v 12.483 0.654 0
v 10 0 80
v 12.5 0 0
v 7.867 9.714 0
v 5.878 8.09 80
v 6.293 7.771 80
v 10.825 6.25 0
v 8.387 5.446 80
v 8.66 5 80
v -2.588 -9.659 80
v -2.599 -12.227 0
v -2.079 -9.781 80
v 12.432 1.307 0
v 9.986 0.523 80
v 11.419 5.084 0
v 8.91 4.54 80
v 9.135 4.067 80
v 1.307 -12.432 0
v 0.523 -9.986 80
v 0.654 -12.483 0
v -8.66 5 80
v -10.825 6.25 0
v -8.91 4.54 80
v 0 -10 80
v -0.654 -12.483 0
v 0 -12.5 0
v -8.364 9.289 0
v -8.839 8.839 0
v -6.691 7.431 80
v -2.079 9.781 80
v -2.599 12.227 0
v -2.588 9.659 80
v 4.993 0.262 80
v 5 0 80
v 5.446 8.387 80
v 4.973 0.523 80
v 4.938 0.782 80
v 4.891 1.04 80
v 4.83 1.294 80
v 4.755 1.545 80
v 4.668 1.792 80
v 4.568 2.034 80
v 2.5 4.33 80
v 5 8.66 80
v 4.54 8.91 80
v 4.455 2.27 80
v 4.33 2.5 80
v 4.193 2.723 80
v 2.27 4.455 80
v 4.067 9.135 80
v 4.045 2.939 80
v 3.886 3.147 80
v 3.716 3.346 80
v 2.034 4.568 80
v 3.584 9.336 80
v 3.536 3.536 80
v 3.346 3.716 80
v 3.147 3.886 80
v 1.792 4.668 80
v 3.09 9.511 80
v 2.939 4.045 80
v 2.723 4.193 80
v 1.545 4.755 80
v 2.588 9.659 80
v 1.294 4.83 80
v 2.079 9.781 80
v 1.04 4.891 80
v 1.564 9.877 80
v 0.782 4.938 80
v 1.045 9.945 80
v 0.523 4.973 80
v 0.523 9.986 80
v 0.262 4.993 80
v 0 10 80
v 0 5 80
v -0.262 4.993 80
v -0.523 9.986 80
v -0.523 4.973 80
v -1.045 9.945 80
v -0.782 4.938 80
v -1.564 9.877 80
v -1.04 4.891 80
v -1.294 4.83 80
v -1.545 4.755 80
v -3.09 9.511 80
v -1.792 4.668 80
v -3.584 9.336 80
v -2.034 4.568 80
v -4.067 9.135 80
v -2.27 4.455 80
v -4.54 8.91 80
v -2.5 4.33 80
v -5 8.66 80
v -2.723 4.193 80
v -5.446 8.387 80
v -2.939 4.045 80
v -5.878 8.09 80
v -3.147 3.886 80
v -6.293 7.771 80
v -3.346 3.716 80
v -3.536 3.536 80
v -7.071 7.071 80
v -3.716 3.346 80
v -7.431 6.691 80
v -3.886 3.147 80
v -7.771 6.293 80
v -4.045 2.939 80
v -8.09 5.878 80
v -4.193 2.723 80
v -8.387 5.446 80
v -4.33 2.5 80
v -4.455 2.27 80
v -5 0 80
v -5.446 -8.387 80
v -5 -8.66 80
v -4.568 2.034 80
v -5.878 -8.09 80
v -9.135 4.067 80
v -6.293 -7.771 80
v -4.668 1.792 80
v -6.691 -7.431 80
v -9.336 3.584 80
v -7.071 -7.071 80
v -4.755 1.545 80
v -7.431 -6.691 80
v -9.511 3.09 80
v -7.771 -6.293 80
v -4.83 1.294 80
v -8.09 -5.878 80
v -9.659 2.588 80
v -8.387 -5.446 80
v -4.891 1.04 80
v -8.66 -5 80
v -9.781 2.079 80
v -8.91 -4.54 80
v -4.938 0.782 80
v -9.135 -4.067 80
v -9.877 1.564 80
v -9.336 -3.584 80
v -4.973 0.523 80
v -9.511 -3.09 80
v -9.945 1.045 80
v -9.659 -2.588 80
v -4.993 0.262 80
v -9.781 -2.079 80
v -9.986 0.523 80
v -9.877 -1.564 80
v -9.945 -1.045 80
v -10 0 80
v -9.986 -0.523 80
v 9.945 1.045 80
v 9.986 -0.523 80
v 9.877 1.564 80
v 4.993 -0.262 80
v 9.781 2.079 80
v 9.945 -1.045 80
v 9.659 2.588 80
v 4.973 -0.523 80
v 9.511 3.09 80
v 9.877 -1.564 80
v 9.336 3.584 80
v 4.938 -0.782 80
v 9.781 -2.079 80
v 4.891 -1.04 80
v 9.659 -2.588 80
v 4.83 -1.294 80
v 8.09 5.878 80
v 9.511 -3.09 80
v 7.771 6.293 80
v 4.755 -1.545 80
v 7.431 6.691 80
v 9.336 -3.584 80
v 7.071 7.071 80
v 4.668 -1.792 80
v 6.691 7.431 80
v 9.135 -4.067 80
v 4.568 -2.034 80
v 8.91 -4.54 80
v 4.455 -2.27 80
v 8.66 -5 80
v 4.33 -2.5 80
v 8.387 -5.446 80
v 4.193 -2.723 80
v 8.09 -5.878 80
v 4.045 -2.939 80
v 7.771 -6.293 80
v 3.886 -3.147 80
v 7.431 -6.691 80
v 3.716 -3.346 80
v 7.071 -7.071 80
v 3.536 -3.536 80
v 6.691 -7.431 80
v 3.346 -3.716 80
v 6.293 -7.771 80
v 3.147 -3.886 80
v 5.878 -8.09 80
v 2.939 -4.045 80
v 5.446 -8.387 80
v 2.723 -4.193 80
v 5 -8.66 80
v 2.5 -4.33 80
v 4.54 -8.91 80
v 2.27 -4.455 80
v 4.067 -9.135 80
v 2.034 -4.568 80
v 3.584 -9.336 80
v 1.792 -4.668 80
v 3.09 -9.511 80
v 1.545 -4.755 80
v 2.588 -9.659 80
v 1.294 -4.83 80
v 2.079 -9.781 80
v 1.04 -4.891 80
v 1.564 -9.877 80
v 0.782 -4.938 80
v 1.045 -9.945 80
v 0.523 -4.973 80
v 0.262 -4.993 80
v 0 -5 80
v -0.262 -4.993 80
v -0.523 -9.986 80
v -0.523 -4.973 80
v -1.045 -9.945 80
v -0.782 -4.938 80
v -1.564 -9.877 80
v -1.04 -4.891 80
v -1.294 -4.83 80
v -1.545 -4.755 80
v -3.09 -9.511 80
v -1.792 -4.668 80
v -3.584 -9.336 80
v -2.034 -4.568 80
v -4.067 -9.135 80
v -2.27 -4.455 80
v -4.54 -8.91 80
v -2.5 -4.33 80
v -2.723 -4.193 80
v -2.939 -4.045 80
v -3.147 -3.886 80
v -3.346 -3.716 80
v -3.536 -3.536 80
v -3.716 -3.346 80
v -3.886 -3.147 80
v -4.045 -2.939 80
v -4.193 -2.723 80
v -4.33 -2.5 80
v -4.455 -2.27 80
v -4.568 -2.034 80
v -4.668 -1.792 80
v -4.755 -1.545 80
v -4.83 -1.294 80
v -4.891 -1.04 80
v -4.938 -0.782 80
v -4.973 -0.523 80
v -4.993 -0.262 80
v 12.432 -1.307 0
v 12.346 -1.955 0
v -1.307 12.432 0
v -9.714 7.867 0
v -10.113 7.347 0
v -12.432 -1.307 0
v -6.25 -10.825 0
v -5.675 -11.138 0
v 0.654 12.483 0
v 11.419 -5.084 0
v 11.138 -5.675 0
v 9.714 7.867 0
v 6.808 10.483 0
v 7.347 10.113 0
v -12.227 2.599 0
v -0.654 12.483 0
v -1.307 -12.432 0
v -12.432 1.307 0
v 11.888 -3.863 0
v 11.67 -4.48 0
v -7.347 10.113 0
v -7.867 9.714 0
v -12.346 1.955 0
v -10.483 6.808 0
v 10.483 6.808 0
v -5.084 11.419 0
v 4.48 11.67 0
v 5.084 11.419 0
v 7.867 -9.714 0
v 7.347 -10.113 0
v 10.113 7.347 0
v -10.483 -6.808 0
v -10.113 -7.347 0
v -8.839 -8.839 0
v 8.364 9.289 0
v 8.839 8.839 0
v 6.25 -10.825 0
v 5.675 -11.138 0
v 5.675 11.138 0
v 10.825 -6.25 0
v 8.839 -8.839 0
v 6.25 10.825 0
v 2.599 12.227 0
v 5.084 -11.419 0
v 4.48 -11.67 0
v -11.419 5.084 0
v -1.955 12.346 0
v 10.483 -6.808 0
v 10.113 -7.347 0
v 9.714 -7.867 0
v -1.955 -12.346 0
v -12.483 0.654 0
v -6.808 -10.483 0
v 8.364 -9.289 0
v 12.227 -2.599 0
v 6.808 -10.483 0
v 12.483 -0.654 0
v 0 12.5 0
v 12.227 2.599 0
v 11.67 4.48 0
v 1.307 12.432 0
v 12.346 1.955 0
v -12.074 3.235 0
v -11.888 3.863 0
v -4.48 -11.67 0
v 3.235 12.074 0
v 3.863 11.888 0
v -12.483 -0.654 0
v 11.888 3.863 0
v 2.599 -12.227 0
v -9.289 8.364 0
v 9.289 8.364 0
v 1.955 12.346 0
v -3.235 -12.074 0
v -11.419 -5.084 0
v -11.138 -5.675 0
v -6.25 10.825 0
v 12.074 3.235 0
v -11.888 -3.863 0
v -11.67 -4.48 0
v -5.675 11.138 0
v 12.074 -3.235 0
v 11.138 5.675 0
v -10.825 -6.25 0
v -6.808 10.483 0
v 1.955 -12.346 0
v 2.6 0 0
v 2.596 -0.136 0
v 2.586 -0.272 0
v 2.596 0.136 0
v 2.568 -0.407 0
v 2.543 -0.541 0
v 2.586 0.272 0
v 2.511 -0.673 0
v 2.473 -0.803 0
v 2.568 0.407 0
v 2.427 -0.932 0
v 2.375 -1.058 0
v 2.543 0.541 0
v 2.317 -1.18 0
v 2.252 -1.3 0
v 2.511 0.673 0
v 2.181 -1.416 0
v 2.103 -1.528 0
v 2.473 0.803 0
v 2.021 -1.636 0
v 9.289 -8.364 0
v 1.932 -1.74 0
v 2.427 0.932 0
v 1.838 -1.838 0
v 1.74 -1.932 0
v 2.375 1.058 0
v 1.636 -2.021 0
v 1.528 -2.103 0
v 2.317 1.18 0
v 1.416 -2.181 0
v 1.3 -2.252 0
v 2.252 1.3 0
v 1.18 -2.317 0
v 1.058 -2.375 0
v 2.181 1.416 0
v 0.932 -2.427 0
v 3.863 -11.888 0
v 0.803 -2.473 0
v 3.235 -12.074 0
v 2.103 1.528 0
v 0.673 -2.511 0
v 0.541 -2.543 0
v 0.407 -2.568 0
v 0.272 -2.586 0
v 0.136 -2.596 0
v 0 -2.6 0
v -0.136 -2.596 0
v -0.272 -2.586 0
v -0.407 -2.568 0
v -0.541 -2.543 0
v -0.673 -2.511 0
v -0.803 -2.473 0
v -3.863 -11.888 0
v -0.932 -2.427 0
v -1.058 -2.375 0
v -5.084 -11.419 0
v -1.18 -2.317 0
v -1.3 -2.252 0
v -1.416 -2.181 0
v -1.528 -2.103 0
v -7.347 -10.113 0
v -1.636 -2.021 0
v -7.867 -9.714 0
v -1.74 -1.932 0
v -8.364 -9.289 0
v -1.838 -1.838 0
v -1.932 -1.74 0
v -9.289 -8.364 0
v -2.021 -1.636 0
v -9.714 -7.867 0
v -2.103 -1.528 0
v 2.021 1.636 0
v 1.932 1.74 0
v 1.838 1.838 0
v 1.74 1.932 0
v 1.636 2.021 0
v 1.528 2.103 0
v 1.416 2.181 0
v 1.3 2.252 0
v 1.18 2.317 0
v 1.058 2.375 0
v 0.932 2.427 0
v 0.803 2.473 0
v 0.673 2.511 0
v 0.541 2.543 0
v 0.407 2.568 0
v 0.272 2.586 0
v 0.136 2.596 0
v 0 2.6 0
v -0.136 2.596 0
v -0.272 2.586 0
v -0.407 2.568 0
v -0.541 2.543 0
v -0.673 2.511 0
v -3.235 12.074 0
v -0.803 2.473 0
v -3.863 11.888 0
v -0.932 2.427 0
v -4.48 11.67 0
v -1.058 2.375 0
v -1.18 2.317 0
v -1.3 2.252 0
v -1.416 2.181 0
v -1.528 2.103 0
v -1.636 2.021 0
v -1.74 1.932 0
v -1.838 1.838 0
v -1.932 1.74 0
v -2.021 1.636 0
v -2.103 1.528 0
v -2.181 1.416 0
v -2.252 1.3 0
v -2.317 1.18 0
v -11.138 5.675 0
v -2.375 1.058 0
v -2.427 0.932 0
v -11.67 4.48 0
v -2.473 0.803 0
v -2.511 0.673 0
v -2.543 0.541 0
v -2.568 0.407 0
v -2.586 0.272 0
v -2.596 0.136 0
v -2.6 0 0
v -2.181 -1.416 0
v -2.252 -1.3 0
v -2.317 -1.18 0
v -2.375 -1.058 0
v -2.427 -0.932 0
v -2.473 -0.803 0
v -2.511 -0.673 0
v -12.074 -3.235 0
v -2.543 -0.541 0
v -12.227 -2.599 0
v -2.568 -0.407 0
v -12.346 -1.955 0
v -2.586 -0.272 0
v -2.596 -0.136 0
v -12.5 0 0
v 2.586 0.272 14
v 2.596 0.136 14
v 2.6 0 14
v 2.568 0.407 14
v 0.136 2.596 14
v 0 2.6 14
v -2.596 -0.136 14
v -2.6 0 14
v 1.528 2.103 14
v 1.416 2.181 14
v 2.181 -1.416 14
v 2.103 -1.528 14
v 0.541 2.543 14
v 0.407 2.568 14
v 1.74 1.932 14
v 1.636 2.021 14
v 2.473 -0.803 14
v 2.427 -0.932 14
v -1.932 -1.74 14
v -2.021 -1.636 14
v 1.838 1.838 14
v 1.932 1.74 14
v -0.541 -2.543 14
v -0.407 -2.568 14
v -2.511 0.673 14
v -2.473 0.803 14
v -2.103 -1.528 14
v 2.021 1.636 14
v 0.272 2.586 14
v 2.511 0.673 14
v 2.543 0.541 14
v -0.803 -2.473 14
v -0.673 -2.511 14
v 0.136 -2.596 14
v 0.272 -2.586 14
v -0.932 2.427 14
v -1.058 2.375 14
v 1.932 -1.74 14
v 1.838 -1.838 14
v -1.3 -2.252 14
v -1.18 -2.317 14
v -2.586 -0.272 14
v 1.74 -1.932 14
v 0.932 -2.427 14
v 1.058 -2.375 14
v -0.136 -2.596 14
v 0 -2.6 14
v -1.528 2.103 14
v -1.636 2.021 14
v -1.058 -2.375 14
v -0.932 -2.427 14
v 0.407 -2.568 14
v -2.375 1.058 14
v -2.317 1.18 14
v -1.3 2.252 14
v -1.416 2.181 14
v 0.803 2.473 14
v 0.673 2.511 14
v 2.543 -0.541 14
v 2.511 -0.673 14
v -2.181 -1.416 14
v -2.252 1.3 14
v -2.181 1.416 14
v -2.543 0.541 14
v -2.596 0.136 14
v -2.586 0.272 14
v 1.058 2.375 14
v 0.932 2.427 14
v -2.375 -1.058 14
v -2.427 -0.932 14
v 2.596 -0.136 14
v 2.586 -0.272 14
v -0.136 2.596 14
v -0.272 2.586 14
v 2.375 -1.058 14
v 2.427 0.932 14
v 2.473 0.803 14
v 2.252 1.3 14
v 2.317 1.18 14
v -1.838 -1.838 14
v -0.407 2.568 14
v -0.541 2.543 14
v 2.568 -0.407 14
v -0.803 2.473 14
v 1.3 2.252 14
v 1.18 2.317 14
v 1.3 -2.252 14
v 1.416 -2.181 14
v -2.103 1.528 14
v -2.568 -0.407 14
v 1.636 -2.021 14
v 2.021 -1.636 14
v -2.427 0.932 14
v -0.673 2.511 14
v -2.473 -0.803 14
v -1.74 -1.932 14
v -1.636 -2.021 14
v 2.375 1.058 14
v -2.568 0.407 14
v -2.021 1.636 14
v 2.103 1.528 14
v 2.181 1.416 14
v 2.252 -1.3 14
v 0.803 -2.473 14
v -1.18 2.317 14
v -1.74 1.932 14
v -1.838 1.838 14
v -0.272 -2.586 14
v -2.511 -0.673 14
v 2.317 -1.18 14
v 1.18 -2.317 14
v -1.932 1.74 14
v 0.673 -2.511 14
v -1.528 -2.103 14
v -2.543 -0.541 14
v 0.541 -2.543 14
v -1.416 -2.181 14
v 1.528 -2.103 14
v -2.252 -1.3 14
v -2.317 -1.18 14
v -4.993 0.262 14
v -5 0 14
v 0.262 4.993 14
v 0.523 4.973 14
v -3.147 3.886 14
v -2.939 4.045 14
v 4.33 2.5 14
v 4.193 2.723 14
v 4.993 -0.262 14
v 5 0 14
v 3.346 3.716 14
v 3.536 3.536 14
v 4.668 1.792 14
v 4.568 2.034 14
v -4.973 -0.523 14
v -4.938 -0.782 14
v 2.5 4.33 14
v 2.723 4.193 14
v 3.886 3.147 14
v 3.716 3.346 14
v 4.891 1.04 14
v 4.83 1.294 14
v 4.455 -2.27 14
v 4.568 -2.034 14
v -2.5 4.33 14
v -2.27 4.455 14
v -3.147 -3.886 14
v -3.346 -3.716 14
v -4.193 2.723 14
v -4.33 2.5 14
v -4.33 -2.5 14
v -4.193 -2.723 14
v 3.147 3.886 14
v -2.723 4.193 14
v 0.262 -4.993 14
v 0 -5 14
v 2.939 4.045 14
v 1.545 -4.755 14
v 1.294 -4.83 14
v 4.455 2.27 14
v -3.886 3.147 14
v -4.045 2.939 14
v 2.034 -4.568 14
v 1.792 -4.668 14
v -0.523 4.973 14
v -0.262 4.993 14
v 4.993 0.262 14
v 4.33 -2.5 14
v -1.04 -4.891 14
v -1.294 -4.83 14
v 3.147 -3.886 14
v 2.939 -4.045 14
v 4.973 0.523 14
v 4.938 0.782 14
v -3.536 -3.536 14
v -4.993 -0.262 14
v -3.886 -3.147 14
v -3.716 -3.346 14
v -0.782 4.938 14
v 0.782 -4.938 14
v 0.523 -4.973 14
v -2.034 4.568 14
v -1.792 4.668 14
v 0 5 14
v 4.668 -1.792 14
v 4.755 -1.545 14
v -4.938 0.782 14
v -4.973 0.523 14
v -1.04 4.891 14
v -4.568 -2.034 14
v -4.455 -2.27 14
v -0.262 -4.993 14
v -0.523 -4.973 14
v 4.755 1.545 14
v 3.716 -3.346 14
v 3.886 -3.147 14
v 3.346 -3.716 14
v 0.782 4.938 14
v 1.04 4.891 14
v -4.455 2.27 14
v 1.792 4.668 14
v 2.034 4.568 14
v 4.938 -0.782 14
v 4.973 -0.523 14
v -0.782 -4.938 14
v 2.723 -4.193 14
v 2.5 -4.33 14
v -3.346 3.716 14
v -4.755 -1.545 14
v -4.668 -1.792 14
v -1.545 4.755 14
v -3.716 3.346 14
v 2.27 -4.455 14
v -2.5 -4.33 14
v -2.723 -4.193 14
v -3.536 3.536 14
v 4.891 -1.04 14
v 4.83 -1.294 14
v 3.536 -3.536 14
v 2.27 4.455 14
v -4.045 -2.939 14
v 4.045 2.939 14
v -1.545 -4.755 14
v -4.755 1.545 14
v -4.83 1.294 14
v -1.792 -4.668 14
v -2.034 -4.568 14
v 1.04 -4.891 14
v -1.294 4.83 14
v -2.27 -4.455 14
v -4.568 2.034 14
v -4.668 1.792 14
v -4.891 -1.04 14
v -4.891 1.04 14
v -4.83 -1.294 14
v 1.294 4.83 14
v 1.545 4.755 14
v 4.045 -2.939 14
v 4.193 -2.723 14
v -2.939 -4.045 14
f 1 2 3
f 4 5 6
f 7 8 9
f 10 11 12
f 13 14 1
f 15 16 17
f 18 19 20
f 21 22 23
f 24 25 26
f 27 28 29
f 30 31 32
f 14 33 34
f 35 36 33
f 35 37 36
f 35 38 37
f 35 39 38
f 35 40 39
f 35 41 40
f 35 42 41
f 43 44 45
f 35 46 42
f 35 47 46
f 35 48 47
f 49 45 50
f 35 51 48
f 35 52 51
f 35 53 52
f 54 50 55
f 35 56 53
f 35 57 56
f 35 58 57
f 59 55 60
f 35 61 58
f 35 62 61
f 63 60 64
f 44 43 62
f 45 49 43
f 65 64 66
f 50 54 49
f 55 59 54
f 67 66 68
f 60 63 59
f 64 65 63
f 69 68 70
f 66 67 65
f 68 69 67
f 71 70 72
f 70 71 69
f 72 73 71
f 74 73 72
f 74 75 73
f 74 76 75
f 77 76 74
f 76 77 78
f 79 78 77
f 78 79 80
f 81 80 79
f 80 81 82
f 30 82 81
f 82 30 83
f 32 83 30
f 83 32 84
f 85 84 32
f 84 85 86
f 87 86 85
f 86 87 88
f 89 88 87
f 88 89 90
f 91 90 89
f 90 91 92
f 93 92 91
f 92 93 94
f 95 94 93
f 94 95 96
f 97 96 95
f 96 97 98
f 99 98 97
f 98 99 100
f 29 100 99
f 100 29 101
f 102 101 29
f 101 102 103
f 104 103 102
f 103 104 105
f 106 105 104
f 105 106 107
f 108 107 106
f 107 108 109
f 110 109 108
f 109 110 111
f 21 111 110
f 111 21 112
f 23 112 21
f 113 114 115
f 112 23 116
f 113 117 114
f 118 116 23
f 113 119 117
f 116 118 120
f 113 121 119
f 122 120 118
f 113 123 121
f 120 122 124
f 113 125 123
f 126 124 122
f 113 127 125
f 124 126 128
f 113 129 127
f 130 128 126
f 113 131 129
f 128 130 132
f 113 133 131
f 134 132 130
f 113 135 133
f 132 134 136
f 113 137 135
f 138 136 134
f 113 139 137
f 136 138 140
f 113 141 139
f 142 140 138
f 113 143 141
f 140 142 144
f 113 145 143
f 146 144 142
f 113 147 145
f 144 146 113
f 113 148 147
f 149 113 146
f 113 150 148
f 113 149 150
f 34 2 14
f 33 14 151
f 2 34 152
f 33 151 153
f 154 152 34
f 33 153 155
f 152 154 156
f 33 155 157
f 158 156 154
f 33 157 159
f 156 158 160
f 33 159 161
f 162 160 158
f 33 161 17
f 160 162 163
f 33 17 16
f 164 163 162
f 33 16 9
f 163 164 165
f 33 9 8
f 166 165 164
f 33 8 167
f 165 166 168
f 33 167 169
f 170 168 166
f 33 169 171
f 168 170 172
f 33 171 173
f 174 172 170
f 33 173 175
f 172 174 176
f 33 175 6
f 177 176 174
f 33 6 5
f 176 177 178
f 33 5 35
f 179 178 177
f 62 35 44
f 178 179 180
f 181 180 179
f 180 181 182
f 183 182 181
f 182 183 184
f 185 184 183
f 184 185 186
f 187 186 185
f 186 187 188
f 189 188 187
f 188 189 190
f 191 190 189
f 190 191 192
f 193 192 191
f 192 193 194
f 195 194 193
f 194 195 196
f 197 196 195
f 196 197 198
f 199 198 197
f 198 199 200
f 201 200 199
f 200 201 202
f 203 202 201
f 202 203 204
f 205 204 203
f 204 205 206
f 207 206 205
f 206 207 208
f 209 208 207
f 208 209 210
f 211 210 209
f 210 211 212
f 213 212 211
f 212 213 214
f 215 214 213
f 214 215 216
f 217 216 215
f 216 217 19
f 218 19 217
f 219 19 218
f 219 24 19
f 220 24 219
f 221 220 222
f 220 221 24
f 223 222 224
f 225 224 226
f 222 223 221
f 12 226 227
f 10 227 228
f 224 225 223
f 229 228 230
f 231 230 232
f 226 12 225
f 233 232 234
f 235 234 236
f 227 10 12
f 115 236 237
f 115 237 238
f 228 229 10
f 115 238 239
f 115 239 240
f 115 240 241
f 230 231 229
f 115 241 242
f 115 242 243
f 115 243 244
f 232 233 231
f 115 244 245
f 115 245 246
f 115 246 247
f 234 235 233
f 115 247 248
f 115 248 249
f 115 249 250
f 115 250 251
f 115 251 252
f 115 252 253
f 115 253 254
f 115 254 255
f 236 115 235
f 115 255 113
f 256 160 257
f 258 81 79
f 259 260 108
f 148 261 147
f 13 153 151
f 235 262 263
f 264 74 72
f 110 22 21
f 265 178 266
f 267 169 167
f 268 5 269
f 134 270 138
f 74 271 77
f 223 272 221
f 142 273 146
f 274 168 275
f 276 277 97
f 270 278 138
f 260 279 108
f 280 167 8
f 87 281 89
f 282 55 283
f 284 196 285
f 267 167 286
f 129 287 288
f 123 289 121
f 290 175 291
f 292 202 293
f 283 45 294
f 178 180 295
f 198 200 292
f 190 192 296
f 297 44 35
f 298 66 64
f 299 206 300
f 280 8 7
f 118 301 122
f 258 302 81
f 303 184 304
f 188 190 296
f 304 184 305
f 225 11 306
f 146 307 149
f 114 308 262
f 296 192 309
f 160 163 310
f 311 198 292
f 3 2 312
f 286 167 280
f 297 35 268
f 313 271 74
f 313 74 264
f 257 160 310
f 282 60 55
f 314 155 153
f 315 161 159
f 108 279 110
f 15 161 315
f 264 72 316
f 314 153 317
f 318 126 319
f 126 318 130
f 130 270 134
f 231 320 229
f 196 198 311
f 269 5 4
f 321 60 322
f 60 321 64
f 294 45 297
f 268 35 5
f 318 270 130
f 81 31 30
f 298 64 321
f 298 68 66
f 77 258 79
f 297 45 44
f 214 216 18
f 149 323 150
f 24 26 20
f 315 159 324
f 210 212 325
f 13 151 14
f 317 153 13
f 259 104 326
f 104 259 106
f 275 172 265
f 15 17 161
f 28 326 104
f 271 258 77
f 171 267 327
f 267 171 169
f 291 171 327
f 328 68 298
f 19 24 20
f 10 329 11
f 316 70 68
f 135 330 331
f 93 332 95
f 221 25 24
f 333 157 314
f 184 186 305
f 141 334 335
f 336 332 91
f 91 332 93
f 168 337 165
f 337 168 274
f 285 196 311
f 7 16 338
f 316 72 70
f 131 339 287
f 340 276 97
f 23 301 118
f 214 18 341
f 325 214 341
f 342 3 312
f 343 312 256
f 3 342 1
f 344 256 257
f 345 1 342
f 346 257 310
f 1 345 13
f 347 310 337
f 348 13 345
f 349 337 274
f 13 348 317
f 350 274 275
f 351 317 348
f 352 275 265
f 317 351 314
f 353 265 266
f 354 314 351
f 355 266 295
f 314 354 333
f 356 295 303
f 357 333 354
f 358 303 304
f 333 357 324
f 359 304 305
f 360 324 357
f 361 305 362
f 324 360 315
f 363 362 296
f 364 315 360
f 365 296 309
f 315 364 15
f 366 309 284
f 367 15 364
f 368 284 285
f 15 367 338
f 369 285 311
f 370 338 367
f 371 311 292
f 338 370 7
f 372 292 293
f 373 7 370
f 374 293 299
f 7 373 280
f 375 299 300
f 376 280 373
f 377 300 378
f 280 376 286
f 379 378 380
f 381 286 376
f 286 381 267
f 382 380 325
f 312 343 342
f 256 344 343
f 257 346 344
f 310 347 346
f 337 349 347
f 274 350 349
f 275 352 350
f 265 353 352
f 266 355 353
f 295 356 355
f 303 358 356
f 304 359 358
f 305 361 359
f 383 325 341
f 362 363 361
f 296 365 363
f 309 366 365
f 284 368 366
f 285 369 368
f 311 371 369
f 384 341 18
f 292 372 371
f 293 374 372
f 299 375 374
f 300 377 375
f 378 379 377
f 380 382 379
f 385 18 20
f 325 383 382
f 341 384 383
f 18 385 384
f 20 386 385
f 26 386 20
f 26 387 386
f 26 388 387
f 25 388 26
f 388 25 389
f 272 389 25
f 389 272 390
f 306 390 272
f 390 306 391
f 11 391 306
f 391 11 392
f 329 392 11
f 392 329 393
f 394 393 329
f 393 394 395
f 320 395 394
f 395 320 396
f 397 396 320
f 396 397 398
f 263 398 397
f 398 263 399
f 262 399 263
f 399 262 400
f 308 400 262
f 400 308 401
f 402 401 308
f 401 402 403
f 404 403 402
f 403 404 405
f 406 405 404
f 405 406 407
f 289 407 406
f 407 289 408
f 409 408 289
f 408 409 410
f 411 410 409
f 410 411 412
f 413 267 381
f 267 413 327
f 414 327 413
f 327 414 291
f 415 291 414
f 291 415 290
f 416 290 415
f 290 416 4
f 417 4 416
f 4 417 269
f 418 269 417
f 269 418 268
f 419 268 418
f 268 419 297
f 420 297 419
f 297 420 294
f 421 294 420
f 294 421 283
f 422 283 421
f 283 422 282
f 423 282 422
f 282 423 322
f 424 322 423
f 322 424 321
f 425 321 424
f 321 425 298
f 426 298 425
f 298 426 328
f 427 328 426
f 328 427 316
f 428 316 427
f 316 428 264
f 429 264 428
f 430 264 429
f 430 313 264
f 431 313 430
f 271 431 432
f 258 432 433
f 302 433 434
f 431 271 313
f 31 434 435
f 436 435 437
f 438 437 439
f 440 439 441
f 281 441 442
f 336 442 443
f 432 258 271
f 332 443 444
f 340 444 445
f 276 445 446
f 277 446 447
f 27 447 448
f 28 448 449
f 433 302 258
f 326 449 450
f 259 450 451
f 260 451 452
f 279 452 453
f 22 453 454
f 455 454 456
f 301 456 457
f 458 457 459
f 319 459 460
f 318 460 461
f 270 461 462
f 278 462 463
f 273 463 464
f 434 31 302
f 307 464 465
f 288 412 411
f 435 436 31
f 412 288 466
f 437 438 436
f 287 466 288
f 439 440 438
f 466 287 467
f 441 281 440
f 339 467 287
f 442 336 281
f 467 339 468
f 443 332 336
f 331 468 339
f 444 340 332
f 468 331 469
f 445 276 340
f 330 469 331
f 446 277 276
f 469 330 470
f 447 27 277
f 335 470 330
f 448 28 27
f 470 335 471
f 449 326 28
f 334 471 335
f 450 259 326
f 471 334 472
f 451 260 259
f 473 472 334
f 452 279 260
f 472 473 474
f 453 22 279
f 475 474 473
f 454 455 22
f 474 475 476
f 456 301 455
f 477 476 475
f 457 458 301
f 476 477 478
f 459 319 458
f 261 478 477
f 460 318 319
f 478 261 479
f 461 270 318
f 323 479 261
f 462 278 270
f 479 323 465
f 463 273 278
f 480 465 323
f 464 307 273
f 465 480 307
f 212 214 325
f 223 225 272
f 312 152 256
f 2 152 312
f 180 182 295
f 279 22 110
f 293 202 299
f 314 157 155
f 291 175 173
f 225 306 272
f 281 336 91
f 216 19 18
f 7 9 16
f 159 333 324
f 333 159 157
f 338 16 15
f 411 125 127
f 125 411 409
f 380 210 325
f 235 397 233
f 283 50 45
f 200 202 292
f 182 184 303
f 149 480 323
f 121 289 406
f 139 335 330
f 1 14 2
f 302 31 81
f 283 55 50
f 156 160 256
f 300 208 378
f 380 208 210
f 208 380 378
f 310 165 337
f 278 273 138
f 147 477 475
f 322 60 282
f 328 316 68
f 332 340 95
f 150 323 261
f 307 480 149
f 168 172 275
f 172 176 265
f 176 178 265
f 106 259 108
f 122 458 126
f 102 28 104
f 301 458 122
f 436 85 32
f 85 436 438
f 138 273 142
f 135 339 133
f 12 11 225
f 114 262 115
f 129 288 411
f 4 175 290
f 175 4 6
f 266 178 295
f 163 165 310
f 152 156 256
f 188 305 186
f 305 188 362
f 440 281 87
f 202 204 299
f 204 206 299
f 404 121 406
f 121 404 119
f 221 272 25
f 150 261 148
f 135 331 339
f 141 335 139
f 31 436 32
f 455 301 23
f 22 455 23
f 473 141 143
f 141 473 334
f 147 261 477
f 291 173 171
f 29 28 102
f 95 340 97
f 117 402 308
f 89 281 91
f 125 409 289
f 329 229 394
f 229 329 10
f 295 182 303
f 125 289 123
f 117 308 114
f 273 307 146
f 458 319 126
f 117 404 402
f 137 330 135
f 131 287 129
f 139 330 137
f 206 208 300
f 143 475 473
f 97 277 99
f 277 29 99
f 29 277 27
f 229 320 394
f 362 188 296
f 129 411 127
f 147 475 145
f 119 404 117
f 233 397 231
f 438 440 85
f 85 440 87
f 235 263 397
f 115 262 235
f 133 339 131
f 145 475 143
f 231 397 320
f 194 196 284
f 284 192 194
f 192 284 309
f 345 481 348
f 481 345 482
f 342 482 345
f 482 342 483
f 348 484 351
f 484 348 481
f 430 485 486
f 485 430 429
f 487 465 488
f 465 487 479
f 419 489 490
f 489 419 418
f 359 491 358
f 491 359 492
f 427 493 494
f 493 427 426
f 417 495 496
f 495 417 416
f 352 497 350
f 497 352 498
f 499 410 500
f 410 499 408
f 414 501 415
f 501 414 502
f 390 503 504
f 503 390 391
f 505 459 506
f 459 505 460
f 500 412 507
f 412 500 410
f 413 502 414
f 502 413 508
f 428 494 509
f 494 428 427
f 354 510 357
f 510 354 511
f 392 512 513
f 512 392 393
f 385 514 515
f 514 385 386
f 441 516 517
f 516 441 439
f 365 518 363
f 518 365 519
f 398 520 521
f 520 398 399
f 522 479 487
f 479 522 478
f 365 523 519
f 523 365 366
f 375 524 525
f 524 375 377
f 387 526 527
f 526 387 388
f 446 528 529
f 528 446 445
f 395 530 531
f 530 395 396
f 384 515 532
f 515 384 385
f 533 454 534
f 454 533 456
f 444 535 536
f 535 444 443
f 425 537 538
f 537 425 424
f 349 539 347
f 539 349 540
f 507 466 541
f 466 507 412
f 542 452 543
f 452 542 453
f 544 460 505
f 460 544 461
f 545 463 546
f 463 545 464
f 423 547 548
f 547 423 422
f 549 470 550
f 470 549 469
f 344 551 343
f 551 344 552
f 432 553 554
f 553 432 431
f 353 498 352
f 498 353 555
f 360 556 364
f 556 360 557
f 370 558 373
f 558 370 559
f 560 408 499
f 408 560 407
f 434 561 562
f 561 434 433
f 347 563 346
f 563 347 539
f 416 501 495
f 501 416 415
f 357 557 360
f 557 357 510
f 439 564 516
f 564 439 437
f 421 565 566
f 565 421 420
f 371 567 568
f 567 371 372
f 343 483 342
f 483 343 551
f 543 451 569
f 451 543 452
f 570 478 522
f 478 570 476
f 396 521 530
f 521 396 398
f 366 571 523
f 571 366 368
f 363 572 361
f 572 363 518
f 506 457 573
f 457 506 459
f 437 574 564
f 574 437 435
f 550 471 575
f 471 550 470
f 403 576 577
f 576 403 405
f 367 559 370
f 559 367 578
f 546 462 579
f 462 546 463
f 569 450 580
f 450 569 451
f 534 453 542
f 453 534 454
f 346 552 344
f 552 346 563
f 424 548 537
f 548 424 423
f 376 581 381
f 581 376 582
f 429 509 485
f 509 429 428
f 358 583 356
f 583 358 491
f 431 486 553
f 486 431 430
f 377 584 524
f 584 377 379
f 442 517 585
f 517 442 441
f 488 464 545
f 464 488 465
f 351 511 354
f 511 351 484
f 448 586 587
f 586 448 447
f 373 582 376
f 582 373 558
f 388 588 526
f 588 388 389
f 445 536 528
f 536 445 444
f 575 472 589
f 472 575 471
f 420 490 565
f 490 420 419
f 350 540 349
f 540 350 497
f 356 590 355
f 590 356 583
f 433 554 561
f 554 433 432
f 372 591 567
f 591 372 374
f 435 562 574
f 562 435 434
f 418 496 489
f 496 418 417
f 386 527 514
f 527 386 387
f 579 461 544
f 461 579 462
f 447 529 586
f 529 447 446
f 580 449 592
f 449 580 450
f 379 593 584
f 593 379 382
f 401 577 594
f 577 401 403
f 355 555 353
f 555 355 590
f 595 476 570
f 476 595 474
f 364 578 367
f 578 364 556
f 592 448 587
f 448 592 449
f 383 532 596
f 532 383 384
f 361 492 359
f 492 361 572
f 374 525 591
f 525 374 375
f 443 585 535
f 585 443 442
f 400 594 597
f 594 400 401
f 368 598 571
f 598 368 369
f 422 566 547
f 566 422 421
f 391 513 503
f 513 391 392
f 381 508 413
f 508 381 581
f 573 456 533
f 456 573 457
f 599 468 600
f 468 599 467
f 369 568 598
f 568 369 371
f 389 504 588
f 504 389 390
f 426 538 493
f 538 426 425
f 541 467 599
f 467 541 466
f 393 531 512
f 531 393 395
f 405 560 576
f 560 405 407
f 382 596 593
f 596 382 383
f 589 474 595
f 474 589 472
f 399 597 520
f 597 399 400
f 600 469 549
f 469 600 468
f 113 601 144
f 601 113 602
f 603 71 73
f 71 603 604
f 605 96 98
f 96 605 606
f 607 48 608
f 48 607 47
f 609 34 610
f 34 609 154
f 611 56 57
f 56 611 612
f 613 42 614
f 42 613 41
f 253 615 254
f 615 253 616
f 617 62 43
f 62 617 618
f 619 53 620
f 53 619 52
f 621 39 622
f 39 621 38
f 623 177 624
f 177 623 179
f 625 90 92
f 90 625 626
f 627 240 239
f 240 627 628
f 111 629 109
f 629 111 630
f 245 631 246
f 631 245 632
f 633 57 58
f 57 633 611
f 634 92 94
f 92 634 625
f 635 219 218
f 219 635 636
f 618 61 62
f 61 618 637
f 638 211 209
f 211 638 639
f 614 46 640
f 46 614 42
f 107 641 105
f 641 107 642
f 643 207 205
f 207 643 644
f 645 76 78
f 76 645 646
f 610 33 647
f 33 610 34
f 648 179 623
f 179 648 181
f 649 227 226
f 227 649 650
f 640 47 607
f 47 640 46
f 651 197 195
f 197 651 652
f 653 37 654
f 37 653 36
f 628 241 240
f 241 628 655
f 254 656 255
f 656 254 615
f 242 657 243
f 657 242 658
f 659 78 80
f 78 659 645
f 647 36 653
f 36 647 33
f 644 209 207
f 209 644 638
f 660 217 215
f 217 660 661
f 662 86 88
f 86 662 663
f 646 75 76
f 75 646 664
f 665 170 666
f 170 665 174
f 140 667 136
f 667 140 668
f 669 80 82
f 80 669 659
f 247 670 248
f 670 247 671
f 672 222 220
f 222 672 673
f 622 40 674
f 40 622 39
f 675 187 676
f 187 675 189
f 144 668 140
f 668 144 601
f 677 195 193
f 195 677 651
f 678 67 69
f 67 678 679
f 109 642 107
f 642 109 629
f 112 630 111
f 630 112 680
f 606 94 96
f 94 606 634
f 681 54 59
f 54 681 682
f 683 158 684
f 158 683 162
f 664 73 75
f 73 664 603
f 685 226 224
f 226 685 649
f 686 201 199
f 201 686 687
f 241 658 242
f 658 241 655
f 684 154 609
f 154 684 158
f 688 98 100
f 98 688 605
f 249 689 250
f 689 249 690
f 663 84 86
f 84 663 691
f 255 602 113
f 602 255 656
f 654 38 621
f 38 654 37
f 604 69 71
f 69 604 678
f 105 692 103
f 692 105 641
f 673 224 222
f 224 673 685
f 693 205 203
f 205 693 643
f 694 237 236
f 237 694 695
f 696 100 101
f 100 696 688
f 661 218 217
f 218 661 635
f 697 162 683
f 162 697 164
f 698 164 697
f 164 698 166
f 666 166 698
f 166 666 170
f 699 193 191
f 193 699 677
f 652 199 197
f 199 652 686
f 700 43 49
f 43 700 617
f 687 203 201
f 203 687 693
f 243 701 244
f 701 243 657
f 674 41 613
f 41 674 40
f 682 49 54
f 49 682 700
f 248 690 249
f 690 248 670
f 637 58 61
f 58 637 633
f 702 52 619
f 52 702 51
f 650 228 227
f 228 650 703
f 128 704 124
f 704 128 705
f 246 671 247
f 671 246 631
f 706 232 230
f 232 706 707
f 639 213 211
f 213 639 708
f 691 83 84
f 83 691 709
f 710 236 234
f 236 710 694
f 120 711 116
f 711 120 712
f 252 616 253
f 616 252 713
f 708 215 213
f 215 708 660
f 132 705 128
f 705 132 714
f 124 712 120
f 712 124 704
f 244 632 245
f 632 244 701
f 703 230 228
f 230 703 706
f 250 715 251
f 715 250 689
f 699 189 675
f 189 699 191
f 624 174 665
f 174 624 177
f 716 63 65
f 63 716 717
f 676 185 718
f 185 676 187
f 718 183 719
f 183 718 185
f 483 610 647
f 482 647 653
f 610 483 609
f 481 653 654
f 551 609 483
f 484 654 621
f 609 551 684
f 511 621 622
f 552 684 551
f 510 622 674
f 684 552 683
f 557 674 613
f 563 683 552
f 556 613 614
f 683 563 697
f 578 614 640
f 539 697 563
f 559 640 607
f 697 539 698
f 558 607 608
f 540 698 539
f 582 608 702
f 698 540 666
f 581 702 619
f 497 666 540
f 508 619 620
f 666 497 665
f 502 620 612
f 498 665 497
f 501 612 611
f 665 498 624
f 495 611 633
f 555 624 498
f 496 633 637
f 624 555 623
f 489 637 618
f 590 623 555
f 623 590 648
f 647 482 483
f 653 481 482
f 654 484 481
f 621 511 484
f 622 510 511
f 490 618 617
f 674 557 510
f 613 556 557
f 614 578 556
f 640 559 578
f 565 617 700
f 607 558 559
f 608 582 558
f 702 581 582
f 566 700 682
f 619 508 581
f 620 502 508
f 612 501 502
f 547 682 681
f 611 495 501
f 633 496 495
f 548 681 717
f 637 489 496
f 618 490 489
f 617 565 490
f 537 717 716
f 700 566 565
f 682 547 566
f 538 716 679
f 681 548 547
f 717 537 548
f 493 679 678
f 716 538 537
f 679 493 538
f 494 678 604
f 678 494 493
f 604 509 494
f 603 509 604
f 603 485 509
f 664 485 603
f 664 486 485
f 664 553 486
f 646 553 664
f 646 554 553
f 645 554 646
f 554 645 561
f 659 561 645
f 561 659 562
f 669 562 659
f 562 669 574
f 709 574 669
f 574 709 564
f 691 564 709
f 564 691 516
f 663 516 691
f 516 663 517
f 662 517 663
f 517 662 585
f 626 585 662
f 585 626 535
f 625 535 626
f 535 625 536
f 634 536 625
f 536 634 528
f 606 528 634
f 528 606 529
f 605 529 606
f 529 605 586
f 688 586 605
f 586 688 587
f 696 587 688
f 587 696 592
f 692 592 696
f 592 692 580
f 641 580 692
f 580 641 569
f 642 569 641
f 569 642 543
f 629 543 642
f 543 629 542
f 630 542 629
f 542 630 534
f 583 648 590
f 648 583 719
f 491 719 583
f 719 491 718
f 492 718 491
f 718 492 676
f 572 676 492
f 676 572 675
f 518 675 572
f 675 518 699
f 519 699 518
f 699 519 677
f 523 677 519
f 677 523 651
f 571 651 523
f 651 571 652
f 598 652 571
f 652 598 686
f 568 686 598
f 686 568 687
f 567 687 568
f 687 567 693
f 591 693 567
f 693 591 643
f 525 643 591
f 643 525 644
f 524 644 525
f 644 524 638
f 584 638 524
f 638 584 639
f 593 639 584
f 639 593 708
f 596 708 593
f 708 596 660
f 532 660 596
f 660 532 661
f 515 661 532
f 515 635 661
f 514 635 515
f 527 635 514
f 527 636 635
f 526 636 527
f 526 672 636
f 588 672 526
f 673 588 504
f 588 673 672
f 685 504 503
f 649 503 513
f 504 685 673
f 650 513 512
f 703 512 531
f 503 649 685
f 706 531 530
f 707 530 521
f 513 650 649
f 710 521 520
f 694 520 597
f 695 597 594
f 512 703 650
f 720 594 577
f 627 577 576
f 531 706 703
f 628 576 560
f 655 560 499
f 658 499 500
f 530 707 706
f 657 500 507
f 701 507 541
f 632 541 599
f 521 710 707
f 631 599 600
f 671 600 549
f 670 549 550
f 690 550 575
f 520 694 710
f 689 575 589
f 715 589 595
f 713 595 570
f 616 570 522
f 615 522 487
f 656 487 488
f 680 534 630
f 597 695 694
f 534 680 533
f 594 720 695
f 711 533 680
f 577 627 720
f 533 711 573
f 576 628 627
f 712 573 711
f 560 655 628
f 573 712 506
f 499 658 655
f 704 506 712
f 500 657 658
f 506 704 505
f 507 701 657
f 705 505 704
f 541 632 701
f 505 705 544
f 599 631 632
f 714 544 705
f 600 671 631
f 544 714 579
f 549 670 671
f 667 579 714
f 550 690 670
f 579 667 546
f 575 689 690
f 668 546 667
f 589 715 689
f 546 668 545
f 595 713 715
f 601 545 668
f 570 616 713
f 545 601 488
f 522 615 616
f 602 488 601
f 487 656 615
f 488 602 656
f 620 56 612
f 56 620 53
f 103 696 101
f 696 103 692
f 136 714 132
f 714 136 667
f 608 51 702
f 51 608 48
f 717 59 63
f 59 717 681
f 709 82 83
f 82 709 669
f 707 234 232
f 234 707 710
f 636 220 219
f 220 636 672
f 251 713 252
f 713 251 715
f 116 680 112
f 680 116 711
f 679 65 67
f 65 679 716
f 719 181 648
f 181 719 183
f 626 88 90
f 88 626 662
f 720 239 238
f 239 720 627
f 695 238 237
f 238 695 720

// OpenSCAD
$fn=120;

diameterTop=25;
diameterBottom=20;
diameterInside=10;
diamaterScrew = 5.2;
height=80;
internalHeight=14;

difference() {
  cylinder(d1=diameterTop,d2=diameterBottom,h=height);
  translate([0,0,-0.1]) cylinder(d=diamaterScrew,h=height);
  translate([0,0,internalHeight]) cylinder(d=diameterInside,h=height);
}
